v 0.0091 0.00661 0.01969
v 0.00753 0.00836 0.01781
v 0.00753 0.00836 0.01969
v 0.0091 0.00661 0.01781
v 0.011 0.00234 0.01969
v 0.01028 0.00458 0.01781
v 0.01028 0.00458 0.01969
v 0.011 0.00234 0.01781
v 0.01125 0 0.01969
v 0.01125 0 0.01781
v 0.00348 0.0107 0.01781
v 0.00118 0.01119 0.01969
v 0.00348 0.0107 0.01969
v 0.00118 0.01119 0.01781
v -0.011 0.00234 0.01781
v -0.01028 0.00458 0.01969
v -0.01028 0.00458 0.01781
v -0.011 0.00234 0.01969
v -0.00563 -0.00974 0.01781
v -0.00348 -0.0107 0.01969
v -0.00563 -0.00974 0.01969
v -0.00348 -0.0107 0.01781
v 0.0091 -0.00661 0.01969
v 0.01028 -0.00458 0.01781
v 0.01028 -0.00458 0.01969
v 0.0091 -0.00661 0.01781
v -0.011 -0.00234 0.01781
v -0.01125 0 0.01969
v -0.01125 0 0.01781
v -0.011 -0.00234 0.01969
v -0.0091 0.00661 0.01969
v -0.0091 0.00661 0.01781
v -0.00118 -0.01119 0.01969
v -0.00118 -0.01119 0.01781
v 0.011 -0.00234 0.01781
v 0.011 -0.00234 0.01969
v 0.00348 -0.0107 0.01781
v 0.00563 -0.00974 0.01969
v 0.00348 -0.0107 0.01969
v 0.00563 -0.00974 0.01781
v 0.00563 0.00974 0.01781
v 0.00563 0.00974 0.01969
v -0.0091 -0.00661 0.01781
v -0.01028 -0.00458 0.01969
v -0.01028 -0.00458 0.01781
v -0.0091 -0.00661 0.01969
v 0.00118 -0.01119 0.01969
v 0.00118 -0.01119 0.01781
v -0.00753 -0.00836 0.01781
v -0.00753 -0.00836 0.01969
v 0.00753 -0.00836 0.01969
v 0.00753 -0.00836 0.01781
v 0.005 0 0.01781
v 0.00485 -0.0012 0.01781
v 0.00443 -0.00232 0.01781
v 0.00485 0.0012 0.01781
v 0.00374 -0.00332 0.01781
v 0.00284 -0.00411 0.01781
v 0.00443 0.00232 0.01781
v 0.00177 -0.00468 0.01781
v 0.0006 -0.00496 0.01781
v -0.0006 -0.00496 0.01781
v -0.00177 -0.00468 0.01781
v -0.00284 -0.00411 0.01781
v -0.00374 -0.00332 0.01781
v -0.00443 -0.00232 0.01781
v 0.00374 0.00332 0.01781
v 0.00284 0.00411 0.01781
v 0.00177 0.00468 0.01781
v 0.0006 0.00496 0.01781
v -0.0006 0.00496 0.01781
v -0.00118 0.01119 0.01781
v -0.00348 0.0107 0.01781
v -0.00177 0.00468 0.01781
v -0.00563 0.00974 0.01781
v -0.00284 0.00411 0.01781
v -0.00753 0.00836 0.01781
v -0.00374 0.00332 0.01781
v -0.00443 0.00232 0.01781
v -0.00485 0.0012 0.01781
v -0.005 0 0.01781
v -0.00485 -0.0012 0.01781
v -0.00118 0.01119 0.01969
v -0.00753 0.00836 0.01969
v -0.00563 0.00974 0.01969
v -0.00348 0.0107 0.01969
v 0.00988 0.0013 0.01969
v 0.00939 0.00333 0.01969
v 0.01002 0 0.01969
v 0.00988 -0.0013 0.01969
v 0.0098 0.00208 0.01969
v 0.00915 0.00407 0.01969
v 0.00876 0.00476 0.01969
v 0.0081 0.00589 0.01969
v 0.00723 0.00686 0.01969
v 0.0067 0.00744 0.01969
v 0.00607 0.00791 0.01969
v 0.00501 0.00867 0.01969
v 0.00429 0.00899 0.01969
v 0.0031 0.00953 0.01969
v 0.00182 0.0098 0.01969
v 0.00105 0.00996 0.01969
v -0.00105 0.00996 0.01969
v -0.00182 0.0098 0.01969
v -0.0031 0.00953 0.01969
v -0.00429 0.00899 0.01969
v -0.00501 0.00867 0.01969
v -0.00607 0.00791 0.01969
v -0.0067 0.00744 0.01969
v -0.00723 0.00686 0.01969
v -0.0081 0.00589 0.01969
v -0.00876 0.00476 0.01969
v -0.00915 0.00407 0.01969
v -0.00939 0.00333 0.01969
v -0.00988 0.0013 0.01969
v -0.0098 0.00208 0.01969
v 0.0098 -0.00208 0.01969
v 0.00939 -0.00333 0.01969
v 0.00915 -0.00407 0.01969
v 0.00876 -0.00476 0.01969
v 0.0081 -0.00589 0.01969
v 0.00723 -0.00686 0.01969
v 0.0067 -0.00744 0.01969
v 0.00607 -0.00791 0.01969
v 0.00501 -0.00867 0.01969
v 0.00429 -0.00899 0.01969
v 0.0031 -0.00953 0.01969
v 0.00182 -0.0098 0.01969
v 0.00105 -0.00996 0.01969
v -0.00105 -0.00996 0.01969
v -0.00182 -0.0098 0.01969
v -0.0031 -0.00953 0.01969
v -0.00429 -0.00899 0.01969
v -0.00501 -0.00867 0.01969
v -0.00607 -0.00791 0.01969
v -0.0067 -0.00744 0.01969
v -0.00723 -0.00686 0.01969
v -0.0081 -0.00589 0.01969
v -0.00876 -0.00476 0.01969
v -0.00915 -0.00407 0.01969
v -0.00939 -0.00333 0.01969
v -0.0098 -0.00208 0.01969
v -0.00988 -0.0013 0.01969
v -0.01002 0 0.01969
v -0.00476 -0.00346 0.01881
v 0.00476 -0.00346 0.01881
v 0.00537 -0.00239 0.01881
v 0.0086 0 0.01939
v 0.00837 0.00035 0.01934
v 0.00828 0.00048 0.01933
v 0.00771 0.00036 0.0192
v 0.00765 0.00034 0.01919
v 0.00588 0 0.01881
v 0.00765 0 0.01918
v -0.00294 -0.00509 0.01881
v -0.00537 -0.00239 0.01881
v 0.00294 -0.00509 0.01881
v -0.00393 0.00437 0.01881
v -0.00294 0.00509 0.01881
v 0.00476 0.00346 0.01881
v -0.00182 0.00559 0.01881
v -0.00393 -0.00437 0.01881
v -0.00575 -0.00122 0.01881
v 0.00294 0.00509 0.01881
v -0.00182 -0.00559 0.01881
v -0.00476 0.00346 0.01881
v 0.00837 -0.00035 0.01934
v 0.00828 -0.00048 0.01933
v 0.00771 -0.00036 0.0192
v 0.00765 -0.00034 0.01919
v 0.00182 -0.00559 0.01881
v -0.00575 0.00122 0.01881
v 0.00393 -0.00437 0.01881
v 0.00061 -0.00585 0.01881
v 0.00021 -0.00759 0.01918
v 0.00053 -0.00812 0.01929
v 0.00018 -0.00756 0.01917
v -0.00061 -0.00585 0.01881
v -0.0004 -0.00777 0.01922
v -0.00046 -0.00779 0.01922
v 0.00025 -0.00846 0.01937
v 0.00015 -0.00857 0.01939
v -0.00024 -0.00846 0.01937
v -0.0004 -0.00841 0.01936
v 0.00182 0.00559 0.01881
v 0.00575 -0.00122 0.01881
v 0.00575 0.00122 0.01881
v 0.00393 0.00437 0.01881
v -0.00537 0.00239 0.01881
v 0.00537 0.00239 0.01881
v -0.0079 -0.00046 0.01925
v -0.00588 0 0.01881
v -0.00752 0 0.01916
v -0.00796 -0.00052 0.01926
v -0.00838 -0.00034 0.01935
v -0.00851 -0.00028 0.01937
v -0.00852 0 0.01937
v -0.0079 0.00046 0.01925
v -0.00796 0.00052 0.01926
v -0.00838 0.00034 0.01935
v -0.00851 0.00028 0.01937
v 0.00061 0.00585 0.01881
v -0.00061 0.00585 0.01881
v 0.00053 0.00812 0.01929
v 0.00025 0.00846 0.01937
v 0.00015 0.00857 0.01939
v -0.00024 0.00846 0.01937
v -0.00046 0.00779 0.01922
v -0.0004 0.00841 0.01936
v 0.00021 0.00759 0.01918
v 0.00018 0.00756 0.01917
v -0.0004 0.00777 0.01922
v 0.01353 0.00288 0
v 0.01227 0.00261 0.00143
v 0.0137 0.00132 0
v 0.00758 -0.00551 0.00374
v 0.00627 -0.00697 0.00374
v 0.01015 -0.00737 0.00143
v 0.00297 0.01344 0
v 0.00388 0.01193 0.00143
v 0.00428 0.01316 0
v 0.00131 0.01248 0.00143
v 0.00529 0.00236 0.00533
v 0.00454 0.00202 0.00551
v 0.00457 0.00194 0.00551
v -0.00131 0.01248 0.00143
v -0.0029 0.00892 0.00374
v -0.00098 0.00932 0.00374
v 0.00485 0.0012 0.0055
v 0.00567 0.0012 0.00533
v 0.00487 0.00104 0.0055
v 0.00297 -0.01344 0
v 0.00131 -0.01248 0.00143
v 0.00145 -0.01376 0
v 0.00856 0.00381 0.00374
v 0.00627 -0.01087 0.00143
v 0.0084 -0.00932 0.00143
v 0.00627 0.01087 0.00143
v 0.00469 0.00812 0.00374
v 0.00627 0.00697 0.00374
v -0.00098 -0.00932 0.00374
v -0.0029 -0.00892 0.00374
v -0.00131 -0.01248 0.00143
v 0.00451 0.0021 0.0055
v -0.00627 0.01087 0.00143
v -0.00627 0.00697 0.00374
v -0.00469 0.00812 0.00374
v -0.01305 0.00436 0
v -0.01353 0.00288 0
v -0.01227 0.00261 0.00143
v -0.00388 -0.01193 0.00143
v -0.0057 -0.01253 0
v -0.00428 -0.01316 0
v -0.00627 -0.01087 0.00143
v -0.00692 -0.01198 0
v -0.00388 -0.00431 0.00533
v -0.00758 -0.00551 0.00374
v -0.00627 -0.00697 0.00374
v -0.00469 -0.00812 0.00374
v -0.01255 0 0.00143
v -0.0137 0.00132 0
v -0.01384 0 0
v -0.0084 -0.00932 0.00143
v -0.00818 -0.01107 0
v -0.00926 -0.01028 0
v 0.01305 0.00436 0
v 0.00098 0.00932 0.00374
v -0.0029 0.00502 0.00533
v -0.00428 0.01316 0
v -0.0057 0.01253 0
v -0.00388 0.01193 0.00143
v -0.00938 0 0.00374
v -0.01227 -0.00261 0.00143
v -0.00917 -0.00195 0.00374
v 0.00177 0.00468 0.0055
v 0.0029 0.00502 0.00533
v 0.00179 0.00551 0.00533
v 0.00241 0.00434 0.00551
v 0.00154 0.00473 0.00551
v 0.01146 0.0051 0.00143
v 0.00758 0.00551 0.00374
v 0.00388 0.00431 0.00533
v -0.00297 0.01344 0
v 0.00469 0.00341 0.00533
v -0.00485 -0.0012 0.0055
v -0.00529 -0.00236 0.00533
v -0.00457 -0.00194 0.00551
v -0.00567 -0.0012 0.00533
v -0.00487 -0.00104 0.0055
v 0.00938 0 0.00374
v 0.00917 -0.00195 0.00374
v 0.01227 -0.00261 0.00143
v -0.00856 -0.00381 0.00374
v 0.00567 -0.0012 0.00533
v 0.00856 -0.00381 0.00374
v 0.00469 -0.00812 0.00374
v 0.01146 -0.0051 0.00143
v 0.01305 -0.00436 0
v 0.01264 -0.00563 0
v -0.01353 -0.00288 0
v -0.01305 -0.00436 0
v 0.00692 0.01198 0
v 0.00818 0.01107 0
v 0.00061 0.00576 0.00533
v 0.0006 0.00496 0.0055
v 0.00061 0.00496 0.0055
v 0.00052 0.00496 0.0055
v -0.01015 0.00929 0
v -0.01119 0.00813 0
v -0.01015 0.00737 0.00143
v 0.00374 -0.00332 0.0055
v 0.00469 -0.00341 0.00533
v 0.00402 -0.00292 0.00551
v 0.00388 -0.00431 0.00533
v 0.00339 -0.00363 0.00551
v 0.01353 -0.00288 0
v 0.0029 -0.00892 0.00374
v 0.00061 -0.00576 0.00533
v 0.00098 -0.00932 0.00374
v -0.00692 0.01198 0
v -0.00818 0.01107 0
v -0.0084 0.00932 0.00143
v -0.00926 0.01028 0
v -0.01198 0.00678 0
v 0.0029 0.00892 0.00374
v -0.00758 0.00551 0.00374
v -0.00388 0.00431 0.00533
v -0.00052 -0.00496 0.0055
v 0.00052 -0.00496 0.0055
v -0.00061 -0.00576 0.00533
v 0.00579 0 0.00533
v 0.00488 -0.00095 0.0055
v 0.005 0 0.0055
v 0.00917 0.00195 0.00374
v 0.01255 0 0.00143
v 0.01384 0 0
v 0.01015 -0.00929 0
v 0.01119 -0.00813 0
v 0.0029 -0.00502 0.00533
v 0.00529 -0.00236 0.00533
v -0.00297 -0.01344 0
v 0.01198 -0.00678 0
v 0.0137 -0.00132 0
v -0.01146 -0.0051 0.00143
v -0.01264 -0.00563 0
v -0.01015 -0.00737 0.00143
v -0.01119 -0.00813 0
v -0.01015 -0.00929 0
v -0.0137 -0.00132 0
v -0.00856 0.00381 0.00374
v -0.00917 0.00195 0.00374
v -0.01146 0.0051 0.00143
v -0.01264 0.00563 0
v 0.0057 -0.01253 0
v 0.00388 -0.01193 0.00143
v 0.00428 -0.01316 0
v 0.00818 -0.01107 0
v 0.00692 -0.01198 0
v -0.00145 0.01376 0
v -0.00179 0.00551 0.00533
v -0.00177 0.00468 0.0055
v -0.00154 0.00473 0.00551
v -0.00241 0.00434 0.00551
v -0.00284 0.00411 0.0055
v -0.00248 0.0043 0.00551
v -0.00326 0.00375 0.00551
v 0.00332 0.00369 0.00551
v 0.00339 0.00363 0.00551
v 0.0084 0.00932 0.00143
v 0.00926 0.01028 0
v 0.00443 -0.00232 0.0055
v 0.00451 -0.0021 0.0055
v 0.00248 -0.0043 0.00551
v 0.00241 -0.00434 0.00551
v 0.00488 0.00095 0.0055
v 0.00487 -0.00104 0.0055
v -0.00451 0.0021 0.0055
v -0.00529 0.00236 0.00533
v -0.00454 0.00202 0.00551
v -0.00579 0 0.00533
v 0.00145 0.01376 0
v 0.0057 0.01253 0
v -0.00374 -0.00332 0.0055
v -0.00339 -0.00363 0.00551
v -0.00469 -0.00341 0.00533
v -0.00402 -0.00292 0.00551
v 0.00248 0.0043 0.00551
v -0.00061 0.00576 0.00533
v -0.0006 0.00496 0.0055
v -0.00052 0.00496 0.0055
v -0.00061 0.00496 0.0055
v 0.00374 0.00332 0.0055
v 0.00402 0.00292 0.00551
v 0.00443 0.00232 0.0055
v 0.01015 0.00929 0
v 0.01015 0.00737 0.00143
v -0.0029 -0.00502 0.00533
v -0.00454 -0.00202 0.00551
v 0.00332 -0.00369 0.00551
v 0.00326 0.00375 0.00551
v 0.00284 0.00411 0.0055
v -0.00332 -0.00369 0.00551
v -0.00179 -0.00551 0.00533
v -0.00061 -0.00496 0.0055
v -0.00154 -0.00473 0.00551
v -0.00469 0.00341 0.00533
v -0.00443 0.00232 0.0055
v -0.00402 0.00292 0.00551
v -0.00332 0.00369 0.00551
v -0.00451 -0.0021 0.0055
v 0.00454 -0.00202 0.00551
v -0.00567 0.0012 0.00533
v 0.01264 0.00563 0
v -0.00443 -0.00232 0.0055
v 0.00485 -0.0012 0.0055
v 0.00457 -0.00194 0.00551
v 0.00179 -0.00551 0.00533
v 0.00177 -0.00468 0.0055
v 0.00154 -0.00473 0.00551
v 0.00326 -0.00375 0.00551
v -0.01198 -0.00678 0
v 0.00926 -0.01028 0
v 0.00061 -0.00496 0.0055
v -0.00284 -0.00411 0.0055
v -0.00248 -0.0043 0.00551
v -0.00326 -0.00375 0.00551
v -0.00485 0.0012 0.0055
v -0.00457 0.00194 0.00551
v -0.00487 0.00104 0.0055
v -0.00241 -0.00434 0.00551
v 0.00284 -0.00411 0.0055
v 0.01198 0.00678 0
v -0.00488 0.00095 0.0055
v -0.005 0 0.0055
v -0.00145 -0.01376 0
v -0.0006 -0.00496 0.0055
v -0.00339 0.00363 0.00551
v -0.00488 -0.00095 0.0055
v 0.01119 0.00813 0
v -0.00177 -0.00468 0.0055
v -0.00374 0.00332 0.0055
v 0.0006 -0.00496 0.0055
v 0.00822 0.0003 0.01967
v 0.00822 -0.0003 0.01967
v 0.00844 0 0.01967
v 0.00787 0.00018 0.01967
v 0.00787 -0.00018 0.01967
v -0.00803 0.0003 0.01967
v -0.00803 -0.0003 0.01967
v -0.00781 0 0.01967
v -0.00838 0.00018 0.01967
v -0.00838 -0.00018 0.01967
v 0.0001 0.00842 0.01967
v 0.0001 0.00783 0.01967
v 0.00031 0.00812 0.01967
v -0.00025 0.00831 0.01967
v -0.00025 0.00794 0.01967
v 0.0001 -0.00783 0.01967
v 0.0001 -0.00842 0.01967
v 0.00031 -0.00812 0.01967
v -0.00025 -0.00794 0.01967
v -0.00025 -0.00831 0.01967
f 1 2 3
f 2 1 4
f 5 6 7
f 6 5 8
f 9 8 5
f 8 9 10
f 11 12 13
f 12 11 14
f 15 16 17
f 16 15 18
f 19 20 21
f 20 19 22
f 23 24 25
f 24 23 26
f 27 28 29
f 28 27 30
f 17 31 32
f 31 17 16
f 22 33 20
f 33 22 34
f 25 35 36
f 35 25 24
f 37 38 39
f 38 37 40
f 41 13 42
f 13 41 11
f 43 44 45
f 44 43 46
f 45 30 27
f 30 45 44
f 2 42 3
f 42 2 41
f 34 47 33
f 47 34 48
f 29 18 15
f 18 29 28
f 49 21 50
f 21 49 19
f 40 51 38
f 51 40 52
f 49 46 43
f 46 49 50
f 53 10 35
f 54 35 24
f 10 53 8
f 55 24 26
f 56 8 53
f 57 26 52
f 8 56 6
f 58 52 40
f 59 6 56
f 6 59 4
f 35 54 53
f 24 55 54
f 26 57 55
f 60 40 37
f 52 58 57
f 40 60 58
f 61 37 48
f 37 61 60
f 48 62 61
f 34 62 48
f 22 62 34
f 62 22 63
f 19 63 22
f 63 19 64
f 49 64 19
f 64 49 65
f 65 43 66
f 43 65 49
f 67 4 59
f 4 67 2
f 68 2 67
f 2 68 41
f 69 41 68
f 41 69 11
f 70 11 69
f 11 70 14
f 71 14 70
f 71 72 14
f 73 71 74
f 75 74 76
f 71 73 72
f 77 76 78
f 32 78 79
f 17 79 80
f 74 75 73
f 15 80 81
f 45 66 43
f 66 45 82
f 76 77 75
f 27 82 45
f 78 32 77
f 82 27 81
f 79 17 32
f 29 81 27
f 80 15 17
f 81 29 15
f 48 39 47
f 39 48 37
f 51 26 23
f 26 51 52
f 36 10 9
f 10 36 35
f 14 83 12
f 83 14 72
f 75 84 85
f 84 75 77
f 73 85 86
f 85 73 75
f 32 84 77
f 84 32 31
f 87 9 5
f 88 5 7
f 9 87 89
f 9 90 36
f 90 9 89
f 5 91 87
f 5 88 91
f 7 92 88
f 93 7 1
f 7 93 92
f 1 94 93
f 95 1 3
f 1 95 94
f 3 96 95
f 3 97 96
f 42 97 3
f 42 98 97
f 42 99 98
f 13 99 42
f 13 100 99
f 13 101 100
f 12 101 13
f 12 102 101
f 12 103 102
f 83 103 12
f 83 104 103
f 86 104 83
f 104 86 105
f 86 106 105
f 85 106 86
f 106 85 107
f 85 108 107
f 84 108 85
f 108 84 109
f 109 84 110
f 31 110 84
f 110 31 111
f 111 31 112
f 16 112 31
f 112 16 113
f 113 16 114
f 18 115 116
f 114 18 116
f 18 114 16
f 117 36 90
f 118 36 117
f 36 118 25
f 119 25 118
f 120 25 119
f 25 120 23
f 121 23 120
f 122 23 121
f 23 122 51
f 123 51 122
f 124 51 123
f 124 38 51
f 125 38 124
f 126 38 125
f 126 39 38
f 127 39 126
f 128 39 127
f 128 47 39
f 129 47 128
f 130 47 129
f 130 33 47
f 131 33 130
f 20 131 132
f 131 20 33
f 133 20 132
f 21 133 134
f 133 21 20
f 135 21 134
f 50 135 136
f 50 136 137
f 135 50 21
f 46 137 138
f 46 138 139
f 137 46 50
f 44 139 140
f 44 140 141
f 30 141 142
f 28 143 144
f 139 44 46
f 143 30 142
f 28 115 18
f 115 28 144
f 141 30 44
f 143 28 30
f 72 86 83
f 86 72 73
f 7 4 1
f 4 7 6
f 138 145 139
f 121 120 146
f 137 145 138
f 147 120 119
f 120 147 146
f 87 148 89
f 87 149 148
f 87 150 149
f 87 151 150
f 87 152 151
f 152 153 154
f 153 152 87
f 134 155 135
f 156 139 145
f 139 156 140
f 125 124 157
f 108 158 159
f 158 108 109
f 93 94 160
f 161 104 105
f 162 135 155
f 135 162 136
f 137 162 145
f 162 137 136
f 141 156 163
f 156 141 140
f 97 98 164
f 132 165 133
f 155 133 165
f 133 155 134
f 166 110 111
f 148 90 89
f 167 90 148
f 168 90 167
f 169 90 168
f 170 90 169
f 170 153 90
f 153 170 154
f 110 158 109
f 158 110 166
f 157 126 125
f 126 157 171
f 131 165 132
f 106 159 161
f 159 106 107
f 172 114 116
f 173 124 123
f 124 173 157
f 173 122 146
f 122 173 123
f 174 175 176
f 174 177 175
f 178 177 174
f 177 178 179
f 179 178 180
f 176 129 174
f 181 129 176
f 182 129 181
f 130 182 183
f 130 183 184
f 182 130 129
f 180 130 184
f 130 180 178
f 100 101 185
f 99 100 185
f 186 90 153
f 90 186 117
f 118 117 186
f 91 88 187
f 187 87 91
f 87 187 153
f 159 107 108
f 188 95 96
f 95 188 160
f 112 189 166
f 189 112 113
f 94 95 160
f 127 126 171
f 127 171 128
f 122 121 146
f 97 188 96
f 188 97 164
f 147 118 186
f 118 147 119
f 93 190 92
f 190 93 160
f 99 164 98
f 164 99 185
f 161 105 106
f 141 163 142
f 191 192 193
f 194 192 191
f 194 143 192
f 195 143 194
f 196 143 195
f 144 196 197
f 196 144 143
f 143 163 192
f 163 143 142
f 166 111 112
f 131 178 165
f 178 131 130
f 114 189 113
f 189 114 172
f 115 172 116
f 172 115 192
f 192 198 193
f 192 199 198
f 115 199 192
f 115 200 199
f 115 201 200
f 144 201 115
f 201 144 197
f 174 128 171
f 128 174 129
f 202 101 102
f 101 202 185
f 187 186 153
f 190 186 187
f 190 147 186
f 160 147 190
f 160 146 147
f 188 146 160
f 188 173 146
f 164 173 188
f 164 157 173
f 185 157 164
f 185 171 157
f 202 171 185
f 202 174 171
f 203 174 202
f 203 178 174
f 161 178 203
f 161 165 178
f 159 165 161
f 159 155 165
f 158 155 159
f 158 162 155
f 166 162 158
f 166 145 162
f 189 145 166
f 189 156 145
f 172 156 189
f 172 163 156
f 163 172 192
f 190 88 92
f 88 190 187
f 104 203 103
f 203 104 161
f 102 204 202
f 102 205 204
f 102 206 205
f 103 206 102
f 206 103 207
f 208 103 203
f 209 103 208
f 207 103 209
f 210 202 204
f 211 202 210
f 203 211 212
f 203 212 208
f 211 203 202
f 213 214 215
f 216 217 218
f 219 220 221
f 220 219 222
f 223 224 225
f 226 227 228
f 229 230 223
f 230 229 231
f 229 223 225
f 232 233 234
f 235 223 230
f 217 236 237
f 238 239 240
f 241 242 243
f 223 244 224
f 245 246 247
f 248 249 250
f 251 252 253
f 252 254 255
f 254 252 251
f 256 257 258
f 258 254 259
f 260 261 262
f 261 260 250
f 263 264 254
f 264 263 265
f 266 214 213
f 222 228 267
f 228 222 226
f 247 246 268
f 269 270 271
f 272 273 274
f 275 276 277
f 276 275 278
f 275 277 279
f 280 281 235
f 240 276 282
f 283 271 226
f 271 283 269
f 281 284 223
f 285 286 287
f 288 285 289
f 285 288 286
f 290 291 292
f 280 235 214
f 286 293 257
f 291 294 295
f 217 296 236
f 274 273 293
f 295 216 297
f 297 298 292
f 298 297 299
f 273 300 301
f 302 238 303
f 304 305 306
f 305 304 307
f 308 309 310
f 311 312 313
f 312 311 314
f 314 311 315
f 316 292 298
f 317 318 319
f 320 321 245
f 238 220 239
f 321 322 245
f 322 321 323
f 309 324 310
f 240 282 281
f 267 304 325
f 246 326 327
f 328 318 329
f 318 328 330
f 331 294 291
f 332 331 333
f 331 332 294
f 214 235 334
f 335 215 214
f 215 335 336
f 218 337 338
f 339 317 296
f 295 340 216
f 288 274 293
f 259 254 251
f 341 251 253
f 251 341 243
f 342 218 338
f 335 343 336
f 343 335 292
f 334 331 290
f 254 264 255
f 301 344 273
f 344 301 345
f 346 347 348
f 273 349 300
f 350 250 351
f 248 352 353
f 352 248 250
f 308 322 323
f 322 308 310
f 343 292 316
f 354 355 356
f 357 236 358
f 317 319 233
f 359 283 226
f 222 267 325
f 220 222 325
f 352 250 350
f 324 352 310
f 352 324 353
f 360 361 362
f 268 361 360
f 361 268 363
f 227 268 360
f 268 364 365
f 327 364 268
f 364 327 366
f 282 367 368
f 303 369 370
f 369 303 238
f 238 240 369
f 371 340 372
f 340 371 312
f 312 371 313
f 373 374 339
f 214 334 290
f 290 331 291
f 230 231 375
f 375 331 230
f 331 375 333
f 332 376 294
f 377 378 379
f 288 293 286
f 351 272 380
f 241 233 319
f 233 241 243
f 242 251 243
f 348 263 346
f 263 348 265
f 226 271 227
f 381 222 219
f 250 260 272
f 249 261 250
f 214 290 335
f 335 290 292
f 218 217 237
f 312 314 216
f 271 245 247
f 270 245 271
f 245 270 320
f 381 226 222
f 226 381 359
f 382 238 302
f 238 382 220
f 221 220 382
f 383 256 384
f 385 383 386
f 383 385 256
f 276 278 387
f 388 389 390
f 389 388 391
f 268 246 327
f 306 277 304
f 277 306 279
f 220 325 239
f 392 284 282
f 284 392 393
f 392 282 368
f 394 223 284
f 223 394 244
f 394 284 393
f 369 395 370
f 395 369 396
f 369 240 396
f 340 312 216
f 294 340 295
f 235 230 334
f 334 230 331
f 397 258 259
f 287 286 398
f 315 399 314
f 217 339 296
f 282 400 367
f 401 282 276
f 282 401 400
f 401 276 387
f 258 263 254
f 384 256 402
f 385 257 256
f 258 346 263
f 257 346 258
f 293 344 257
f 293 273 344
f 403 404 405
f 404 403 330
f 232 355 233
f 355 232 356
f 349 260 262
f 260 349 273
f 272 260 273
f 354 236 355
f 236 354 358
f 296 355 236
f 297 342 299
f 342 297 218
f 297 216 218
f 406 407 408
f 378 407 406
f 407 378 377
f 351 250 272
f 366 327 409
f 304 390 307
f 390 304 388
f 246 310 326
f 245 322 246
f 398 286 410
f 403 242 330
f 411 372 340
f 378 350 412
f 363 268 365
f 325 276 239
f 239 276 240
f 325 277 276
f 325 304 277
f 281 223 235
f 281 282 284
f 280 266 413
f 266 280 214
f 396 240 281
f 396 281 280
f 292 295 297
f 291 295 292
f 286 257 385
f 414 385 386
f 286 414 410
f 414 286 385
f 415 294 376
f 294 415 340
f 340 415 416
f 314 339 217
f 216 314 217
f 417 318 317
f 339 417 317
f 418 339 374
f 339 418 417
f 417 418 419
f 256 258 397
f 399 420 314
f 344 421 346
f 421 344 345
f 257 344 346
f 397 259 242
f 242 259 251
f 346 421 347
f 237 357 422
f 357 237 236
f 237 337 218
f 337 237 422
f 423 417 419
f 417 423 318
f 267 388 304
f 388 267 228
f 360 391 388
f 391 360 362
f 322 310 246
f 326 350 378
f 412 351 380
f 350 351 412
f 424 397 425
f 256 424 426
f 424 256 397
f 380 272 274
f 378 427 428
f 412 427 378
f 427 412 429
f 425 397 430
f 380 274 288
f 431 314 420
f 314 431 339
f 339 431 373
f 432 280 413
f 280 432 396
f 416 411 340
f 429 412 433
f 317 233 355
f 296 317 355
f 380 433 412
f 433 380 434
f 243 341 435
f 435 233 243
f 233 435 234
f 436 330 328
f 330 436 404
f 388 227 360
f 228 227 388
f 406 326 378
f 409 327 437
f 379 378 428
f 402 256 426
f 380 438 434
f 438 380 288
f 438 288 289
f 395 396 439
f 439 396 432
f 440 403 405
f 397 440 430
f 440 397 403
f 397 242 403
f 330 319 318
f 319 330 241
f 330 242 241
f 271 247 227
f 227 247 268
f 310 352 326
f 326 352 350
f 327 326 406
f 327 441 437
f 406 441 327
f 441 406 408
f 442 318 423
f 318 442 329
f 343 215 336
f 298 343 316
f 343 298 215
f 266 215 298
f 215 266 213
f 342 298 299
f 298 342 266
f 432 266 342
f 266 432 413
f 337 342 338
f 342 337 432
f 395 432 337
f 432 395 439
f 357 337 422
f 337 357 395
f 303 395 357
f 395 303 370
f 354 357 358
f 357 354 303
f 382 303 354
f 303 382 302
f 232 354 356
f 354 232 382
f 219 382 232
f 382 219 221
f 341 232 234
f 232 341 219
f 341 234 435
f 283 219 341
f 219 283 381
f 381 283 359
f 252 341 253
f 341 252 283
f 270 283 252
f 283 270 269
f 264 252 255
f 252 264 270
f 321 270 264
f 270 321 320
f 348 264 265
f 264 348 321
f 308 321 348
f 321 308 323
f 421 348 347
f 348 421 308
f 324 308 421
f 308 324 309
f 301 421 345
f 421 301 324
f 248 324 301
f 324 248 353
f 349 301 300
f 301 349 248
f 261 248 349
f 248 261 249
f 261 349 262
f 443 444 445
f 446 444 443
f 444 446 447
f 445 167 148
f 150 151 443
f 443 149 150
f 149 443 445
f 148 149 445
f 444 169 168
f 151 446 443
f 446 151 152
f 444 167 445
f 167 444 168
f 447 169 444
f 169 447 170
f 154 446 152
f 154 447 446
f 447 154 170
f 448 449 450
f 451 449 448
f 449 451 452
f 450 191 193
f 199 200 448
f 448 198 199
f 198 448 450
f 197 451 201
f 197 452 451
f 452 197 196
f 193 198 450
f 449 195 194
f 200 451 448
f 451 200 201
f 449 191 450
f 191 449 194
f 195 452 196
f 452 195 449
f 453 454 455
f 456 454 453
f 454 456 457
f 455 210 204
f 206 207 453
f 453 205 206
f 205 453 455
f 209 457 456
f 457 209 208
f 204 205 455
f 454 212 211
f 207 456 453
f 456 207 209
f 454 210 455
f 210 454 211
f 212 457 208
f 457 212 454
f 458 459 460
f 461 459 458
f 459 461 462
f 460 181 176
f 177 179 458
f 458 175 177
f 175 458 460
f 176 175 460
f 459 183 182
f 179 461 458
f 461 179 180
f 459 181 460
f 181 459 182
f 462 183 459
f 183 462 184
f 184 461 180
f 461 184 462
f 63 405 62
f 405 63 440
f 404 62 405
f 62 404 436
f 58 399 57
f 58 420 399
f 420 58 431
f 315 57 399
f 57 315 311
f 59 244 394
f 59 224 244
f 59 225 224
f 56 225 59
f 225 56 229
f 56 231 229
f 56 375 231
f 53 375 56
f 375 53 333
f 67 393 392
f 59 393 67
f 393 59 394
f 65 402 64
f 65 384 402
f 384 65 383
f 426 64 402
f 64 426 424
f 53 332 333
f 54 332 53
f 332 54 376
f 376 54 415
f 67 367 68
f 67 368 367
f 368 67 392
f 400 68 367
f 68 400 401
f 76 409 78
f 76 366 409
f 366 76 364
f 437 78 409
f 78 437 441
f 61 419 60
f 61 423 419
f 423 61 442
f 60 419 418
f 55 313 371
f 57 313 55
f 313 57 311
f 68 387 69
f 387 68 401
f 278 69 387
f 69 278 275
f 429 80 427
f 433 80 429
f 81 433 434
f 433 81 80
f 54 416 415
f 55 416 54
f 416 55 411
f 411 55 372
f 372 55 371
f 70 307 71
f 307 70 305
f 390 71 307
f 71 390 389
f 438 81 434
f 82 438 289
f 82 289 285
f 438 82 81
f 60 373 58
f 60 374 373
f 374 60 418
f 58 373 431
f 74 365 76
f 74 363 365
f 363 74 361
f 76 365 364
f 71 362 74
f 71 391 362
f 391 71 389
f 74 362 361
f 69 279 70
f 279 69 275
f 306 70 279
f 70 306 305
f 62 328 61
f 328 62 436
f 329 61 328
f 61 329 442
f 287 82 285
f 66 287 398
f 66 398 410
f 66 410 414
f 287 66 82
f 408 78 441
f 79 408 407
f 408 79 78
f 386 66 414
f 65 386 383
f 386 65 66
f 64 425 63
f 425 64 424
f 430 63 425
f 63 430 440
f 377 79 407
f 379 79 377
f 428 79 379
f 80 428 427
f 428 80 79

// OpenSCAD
// The whole thumb stick.
shaft_length = 30;
scale([0.00125, 0.00125, 0.00125])
scale([0.5, 0.5, 0.5])
union() {
    // The little dots for improved grip.
    translate([13, 0, shaft_length + 0.6])
    sphere(1);
    
    translate([-13, 0, shaft_length + 0.6])
    sphere(1);
    
    translate([0, 13, shaft_length + 0.6])
    sphere(1);
    
    translate([0, -13, shaft_length + 0.6])
    sphere(1);
    
    // The head of the thumb stick.
    translate([0, 0, shaft_length])
    difference() {
        linear_extrude(height = 3, center = true, convexity = 10, twist = 0)
        circle(18);
        translate([0, 0, 89.6])
        sphere(90);
    };
    
    // The shaft of the thumb stick.
    translate([0, 0, 5])
    cylinder(shaft_length - 5, 8, 8);
    
    // The lower sphere used to mount the thumb stick
    // to the game controller body.
    difference() {
        translate([0, 0, -20])
        sphere(30);
        translate([0, 0, -100])
        cube([200, 200, 200], true);
    };
}
